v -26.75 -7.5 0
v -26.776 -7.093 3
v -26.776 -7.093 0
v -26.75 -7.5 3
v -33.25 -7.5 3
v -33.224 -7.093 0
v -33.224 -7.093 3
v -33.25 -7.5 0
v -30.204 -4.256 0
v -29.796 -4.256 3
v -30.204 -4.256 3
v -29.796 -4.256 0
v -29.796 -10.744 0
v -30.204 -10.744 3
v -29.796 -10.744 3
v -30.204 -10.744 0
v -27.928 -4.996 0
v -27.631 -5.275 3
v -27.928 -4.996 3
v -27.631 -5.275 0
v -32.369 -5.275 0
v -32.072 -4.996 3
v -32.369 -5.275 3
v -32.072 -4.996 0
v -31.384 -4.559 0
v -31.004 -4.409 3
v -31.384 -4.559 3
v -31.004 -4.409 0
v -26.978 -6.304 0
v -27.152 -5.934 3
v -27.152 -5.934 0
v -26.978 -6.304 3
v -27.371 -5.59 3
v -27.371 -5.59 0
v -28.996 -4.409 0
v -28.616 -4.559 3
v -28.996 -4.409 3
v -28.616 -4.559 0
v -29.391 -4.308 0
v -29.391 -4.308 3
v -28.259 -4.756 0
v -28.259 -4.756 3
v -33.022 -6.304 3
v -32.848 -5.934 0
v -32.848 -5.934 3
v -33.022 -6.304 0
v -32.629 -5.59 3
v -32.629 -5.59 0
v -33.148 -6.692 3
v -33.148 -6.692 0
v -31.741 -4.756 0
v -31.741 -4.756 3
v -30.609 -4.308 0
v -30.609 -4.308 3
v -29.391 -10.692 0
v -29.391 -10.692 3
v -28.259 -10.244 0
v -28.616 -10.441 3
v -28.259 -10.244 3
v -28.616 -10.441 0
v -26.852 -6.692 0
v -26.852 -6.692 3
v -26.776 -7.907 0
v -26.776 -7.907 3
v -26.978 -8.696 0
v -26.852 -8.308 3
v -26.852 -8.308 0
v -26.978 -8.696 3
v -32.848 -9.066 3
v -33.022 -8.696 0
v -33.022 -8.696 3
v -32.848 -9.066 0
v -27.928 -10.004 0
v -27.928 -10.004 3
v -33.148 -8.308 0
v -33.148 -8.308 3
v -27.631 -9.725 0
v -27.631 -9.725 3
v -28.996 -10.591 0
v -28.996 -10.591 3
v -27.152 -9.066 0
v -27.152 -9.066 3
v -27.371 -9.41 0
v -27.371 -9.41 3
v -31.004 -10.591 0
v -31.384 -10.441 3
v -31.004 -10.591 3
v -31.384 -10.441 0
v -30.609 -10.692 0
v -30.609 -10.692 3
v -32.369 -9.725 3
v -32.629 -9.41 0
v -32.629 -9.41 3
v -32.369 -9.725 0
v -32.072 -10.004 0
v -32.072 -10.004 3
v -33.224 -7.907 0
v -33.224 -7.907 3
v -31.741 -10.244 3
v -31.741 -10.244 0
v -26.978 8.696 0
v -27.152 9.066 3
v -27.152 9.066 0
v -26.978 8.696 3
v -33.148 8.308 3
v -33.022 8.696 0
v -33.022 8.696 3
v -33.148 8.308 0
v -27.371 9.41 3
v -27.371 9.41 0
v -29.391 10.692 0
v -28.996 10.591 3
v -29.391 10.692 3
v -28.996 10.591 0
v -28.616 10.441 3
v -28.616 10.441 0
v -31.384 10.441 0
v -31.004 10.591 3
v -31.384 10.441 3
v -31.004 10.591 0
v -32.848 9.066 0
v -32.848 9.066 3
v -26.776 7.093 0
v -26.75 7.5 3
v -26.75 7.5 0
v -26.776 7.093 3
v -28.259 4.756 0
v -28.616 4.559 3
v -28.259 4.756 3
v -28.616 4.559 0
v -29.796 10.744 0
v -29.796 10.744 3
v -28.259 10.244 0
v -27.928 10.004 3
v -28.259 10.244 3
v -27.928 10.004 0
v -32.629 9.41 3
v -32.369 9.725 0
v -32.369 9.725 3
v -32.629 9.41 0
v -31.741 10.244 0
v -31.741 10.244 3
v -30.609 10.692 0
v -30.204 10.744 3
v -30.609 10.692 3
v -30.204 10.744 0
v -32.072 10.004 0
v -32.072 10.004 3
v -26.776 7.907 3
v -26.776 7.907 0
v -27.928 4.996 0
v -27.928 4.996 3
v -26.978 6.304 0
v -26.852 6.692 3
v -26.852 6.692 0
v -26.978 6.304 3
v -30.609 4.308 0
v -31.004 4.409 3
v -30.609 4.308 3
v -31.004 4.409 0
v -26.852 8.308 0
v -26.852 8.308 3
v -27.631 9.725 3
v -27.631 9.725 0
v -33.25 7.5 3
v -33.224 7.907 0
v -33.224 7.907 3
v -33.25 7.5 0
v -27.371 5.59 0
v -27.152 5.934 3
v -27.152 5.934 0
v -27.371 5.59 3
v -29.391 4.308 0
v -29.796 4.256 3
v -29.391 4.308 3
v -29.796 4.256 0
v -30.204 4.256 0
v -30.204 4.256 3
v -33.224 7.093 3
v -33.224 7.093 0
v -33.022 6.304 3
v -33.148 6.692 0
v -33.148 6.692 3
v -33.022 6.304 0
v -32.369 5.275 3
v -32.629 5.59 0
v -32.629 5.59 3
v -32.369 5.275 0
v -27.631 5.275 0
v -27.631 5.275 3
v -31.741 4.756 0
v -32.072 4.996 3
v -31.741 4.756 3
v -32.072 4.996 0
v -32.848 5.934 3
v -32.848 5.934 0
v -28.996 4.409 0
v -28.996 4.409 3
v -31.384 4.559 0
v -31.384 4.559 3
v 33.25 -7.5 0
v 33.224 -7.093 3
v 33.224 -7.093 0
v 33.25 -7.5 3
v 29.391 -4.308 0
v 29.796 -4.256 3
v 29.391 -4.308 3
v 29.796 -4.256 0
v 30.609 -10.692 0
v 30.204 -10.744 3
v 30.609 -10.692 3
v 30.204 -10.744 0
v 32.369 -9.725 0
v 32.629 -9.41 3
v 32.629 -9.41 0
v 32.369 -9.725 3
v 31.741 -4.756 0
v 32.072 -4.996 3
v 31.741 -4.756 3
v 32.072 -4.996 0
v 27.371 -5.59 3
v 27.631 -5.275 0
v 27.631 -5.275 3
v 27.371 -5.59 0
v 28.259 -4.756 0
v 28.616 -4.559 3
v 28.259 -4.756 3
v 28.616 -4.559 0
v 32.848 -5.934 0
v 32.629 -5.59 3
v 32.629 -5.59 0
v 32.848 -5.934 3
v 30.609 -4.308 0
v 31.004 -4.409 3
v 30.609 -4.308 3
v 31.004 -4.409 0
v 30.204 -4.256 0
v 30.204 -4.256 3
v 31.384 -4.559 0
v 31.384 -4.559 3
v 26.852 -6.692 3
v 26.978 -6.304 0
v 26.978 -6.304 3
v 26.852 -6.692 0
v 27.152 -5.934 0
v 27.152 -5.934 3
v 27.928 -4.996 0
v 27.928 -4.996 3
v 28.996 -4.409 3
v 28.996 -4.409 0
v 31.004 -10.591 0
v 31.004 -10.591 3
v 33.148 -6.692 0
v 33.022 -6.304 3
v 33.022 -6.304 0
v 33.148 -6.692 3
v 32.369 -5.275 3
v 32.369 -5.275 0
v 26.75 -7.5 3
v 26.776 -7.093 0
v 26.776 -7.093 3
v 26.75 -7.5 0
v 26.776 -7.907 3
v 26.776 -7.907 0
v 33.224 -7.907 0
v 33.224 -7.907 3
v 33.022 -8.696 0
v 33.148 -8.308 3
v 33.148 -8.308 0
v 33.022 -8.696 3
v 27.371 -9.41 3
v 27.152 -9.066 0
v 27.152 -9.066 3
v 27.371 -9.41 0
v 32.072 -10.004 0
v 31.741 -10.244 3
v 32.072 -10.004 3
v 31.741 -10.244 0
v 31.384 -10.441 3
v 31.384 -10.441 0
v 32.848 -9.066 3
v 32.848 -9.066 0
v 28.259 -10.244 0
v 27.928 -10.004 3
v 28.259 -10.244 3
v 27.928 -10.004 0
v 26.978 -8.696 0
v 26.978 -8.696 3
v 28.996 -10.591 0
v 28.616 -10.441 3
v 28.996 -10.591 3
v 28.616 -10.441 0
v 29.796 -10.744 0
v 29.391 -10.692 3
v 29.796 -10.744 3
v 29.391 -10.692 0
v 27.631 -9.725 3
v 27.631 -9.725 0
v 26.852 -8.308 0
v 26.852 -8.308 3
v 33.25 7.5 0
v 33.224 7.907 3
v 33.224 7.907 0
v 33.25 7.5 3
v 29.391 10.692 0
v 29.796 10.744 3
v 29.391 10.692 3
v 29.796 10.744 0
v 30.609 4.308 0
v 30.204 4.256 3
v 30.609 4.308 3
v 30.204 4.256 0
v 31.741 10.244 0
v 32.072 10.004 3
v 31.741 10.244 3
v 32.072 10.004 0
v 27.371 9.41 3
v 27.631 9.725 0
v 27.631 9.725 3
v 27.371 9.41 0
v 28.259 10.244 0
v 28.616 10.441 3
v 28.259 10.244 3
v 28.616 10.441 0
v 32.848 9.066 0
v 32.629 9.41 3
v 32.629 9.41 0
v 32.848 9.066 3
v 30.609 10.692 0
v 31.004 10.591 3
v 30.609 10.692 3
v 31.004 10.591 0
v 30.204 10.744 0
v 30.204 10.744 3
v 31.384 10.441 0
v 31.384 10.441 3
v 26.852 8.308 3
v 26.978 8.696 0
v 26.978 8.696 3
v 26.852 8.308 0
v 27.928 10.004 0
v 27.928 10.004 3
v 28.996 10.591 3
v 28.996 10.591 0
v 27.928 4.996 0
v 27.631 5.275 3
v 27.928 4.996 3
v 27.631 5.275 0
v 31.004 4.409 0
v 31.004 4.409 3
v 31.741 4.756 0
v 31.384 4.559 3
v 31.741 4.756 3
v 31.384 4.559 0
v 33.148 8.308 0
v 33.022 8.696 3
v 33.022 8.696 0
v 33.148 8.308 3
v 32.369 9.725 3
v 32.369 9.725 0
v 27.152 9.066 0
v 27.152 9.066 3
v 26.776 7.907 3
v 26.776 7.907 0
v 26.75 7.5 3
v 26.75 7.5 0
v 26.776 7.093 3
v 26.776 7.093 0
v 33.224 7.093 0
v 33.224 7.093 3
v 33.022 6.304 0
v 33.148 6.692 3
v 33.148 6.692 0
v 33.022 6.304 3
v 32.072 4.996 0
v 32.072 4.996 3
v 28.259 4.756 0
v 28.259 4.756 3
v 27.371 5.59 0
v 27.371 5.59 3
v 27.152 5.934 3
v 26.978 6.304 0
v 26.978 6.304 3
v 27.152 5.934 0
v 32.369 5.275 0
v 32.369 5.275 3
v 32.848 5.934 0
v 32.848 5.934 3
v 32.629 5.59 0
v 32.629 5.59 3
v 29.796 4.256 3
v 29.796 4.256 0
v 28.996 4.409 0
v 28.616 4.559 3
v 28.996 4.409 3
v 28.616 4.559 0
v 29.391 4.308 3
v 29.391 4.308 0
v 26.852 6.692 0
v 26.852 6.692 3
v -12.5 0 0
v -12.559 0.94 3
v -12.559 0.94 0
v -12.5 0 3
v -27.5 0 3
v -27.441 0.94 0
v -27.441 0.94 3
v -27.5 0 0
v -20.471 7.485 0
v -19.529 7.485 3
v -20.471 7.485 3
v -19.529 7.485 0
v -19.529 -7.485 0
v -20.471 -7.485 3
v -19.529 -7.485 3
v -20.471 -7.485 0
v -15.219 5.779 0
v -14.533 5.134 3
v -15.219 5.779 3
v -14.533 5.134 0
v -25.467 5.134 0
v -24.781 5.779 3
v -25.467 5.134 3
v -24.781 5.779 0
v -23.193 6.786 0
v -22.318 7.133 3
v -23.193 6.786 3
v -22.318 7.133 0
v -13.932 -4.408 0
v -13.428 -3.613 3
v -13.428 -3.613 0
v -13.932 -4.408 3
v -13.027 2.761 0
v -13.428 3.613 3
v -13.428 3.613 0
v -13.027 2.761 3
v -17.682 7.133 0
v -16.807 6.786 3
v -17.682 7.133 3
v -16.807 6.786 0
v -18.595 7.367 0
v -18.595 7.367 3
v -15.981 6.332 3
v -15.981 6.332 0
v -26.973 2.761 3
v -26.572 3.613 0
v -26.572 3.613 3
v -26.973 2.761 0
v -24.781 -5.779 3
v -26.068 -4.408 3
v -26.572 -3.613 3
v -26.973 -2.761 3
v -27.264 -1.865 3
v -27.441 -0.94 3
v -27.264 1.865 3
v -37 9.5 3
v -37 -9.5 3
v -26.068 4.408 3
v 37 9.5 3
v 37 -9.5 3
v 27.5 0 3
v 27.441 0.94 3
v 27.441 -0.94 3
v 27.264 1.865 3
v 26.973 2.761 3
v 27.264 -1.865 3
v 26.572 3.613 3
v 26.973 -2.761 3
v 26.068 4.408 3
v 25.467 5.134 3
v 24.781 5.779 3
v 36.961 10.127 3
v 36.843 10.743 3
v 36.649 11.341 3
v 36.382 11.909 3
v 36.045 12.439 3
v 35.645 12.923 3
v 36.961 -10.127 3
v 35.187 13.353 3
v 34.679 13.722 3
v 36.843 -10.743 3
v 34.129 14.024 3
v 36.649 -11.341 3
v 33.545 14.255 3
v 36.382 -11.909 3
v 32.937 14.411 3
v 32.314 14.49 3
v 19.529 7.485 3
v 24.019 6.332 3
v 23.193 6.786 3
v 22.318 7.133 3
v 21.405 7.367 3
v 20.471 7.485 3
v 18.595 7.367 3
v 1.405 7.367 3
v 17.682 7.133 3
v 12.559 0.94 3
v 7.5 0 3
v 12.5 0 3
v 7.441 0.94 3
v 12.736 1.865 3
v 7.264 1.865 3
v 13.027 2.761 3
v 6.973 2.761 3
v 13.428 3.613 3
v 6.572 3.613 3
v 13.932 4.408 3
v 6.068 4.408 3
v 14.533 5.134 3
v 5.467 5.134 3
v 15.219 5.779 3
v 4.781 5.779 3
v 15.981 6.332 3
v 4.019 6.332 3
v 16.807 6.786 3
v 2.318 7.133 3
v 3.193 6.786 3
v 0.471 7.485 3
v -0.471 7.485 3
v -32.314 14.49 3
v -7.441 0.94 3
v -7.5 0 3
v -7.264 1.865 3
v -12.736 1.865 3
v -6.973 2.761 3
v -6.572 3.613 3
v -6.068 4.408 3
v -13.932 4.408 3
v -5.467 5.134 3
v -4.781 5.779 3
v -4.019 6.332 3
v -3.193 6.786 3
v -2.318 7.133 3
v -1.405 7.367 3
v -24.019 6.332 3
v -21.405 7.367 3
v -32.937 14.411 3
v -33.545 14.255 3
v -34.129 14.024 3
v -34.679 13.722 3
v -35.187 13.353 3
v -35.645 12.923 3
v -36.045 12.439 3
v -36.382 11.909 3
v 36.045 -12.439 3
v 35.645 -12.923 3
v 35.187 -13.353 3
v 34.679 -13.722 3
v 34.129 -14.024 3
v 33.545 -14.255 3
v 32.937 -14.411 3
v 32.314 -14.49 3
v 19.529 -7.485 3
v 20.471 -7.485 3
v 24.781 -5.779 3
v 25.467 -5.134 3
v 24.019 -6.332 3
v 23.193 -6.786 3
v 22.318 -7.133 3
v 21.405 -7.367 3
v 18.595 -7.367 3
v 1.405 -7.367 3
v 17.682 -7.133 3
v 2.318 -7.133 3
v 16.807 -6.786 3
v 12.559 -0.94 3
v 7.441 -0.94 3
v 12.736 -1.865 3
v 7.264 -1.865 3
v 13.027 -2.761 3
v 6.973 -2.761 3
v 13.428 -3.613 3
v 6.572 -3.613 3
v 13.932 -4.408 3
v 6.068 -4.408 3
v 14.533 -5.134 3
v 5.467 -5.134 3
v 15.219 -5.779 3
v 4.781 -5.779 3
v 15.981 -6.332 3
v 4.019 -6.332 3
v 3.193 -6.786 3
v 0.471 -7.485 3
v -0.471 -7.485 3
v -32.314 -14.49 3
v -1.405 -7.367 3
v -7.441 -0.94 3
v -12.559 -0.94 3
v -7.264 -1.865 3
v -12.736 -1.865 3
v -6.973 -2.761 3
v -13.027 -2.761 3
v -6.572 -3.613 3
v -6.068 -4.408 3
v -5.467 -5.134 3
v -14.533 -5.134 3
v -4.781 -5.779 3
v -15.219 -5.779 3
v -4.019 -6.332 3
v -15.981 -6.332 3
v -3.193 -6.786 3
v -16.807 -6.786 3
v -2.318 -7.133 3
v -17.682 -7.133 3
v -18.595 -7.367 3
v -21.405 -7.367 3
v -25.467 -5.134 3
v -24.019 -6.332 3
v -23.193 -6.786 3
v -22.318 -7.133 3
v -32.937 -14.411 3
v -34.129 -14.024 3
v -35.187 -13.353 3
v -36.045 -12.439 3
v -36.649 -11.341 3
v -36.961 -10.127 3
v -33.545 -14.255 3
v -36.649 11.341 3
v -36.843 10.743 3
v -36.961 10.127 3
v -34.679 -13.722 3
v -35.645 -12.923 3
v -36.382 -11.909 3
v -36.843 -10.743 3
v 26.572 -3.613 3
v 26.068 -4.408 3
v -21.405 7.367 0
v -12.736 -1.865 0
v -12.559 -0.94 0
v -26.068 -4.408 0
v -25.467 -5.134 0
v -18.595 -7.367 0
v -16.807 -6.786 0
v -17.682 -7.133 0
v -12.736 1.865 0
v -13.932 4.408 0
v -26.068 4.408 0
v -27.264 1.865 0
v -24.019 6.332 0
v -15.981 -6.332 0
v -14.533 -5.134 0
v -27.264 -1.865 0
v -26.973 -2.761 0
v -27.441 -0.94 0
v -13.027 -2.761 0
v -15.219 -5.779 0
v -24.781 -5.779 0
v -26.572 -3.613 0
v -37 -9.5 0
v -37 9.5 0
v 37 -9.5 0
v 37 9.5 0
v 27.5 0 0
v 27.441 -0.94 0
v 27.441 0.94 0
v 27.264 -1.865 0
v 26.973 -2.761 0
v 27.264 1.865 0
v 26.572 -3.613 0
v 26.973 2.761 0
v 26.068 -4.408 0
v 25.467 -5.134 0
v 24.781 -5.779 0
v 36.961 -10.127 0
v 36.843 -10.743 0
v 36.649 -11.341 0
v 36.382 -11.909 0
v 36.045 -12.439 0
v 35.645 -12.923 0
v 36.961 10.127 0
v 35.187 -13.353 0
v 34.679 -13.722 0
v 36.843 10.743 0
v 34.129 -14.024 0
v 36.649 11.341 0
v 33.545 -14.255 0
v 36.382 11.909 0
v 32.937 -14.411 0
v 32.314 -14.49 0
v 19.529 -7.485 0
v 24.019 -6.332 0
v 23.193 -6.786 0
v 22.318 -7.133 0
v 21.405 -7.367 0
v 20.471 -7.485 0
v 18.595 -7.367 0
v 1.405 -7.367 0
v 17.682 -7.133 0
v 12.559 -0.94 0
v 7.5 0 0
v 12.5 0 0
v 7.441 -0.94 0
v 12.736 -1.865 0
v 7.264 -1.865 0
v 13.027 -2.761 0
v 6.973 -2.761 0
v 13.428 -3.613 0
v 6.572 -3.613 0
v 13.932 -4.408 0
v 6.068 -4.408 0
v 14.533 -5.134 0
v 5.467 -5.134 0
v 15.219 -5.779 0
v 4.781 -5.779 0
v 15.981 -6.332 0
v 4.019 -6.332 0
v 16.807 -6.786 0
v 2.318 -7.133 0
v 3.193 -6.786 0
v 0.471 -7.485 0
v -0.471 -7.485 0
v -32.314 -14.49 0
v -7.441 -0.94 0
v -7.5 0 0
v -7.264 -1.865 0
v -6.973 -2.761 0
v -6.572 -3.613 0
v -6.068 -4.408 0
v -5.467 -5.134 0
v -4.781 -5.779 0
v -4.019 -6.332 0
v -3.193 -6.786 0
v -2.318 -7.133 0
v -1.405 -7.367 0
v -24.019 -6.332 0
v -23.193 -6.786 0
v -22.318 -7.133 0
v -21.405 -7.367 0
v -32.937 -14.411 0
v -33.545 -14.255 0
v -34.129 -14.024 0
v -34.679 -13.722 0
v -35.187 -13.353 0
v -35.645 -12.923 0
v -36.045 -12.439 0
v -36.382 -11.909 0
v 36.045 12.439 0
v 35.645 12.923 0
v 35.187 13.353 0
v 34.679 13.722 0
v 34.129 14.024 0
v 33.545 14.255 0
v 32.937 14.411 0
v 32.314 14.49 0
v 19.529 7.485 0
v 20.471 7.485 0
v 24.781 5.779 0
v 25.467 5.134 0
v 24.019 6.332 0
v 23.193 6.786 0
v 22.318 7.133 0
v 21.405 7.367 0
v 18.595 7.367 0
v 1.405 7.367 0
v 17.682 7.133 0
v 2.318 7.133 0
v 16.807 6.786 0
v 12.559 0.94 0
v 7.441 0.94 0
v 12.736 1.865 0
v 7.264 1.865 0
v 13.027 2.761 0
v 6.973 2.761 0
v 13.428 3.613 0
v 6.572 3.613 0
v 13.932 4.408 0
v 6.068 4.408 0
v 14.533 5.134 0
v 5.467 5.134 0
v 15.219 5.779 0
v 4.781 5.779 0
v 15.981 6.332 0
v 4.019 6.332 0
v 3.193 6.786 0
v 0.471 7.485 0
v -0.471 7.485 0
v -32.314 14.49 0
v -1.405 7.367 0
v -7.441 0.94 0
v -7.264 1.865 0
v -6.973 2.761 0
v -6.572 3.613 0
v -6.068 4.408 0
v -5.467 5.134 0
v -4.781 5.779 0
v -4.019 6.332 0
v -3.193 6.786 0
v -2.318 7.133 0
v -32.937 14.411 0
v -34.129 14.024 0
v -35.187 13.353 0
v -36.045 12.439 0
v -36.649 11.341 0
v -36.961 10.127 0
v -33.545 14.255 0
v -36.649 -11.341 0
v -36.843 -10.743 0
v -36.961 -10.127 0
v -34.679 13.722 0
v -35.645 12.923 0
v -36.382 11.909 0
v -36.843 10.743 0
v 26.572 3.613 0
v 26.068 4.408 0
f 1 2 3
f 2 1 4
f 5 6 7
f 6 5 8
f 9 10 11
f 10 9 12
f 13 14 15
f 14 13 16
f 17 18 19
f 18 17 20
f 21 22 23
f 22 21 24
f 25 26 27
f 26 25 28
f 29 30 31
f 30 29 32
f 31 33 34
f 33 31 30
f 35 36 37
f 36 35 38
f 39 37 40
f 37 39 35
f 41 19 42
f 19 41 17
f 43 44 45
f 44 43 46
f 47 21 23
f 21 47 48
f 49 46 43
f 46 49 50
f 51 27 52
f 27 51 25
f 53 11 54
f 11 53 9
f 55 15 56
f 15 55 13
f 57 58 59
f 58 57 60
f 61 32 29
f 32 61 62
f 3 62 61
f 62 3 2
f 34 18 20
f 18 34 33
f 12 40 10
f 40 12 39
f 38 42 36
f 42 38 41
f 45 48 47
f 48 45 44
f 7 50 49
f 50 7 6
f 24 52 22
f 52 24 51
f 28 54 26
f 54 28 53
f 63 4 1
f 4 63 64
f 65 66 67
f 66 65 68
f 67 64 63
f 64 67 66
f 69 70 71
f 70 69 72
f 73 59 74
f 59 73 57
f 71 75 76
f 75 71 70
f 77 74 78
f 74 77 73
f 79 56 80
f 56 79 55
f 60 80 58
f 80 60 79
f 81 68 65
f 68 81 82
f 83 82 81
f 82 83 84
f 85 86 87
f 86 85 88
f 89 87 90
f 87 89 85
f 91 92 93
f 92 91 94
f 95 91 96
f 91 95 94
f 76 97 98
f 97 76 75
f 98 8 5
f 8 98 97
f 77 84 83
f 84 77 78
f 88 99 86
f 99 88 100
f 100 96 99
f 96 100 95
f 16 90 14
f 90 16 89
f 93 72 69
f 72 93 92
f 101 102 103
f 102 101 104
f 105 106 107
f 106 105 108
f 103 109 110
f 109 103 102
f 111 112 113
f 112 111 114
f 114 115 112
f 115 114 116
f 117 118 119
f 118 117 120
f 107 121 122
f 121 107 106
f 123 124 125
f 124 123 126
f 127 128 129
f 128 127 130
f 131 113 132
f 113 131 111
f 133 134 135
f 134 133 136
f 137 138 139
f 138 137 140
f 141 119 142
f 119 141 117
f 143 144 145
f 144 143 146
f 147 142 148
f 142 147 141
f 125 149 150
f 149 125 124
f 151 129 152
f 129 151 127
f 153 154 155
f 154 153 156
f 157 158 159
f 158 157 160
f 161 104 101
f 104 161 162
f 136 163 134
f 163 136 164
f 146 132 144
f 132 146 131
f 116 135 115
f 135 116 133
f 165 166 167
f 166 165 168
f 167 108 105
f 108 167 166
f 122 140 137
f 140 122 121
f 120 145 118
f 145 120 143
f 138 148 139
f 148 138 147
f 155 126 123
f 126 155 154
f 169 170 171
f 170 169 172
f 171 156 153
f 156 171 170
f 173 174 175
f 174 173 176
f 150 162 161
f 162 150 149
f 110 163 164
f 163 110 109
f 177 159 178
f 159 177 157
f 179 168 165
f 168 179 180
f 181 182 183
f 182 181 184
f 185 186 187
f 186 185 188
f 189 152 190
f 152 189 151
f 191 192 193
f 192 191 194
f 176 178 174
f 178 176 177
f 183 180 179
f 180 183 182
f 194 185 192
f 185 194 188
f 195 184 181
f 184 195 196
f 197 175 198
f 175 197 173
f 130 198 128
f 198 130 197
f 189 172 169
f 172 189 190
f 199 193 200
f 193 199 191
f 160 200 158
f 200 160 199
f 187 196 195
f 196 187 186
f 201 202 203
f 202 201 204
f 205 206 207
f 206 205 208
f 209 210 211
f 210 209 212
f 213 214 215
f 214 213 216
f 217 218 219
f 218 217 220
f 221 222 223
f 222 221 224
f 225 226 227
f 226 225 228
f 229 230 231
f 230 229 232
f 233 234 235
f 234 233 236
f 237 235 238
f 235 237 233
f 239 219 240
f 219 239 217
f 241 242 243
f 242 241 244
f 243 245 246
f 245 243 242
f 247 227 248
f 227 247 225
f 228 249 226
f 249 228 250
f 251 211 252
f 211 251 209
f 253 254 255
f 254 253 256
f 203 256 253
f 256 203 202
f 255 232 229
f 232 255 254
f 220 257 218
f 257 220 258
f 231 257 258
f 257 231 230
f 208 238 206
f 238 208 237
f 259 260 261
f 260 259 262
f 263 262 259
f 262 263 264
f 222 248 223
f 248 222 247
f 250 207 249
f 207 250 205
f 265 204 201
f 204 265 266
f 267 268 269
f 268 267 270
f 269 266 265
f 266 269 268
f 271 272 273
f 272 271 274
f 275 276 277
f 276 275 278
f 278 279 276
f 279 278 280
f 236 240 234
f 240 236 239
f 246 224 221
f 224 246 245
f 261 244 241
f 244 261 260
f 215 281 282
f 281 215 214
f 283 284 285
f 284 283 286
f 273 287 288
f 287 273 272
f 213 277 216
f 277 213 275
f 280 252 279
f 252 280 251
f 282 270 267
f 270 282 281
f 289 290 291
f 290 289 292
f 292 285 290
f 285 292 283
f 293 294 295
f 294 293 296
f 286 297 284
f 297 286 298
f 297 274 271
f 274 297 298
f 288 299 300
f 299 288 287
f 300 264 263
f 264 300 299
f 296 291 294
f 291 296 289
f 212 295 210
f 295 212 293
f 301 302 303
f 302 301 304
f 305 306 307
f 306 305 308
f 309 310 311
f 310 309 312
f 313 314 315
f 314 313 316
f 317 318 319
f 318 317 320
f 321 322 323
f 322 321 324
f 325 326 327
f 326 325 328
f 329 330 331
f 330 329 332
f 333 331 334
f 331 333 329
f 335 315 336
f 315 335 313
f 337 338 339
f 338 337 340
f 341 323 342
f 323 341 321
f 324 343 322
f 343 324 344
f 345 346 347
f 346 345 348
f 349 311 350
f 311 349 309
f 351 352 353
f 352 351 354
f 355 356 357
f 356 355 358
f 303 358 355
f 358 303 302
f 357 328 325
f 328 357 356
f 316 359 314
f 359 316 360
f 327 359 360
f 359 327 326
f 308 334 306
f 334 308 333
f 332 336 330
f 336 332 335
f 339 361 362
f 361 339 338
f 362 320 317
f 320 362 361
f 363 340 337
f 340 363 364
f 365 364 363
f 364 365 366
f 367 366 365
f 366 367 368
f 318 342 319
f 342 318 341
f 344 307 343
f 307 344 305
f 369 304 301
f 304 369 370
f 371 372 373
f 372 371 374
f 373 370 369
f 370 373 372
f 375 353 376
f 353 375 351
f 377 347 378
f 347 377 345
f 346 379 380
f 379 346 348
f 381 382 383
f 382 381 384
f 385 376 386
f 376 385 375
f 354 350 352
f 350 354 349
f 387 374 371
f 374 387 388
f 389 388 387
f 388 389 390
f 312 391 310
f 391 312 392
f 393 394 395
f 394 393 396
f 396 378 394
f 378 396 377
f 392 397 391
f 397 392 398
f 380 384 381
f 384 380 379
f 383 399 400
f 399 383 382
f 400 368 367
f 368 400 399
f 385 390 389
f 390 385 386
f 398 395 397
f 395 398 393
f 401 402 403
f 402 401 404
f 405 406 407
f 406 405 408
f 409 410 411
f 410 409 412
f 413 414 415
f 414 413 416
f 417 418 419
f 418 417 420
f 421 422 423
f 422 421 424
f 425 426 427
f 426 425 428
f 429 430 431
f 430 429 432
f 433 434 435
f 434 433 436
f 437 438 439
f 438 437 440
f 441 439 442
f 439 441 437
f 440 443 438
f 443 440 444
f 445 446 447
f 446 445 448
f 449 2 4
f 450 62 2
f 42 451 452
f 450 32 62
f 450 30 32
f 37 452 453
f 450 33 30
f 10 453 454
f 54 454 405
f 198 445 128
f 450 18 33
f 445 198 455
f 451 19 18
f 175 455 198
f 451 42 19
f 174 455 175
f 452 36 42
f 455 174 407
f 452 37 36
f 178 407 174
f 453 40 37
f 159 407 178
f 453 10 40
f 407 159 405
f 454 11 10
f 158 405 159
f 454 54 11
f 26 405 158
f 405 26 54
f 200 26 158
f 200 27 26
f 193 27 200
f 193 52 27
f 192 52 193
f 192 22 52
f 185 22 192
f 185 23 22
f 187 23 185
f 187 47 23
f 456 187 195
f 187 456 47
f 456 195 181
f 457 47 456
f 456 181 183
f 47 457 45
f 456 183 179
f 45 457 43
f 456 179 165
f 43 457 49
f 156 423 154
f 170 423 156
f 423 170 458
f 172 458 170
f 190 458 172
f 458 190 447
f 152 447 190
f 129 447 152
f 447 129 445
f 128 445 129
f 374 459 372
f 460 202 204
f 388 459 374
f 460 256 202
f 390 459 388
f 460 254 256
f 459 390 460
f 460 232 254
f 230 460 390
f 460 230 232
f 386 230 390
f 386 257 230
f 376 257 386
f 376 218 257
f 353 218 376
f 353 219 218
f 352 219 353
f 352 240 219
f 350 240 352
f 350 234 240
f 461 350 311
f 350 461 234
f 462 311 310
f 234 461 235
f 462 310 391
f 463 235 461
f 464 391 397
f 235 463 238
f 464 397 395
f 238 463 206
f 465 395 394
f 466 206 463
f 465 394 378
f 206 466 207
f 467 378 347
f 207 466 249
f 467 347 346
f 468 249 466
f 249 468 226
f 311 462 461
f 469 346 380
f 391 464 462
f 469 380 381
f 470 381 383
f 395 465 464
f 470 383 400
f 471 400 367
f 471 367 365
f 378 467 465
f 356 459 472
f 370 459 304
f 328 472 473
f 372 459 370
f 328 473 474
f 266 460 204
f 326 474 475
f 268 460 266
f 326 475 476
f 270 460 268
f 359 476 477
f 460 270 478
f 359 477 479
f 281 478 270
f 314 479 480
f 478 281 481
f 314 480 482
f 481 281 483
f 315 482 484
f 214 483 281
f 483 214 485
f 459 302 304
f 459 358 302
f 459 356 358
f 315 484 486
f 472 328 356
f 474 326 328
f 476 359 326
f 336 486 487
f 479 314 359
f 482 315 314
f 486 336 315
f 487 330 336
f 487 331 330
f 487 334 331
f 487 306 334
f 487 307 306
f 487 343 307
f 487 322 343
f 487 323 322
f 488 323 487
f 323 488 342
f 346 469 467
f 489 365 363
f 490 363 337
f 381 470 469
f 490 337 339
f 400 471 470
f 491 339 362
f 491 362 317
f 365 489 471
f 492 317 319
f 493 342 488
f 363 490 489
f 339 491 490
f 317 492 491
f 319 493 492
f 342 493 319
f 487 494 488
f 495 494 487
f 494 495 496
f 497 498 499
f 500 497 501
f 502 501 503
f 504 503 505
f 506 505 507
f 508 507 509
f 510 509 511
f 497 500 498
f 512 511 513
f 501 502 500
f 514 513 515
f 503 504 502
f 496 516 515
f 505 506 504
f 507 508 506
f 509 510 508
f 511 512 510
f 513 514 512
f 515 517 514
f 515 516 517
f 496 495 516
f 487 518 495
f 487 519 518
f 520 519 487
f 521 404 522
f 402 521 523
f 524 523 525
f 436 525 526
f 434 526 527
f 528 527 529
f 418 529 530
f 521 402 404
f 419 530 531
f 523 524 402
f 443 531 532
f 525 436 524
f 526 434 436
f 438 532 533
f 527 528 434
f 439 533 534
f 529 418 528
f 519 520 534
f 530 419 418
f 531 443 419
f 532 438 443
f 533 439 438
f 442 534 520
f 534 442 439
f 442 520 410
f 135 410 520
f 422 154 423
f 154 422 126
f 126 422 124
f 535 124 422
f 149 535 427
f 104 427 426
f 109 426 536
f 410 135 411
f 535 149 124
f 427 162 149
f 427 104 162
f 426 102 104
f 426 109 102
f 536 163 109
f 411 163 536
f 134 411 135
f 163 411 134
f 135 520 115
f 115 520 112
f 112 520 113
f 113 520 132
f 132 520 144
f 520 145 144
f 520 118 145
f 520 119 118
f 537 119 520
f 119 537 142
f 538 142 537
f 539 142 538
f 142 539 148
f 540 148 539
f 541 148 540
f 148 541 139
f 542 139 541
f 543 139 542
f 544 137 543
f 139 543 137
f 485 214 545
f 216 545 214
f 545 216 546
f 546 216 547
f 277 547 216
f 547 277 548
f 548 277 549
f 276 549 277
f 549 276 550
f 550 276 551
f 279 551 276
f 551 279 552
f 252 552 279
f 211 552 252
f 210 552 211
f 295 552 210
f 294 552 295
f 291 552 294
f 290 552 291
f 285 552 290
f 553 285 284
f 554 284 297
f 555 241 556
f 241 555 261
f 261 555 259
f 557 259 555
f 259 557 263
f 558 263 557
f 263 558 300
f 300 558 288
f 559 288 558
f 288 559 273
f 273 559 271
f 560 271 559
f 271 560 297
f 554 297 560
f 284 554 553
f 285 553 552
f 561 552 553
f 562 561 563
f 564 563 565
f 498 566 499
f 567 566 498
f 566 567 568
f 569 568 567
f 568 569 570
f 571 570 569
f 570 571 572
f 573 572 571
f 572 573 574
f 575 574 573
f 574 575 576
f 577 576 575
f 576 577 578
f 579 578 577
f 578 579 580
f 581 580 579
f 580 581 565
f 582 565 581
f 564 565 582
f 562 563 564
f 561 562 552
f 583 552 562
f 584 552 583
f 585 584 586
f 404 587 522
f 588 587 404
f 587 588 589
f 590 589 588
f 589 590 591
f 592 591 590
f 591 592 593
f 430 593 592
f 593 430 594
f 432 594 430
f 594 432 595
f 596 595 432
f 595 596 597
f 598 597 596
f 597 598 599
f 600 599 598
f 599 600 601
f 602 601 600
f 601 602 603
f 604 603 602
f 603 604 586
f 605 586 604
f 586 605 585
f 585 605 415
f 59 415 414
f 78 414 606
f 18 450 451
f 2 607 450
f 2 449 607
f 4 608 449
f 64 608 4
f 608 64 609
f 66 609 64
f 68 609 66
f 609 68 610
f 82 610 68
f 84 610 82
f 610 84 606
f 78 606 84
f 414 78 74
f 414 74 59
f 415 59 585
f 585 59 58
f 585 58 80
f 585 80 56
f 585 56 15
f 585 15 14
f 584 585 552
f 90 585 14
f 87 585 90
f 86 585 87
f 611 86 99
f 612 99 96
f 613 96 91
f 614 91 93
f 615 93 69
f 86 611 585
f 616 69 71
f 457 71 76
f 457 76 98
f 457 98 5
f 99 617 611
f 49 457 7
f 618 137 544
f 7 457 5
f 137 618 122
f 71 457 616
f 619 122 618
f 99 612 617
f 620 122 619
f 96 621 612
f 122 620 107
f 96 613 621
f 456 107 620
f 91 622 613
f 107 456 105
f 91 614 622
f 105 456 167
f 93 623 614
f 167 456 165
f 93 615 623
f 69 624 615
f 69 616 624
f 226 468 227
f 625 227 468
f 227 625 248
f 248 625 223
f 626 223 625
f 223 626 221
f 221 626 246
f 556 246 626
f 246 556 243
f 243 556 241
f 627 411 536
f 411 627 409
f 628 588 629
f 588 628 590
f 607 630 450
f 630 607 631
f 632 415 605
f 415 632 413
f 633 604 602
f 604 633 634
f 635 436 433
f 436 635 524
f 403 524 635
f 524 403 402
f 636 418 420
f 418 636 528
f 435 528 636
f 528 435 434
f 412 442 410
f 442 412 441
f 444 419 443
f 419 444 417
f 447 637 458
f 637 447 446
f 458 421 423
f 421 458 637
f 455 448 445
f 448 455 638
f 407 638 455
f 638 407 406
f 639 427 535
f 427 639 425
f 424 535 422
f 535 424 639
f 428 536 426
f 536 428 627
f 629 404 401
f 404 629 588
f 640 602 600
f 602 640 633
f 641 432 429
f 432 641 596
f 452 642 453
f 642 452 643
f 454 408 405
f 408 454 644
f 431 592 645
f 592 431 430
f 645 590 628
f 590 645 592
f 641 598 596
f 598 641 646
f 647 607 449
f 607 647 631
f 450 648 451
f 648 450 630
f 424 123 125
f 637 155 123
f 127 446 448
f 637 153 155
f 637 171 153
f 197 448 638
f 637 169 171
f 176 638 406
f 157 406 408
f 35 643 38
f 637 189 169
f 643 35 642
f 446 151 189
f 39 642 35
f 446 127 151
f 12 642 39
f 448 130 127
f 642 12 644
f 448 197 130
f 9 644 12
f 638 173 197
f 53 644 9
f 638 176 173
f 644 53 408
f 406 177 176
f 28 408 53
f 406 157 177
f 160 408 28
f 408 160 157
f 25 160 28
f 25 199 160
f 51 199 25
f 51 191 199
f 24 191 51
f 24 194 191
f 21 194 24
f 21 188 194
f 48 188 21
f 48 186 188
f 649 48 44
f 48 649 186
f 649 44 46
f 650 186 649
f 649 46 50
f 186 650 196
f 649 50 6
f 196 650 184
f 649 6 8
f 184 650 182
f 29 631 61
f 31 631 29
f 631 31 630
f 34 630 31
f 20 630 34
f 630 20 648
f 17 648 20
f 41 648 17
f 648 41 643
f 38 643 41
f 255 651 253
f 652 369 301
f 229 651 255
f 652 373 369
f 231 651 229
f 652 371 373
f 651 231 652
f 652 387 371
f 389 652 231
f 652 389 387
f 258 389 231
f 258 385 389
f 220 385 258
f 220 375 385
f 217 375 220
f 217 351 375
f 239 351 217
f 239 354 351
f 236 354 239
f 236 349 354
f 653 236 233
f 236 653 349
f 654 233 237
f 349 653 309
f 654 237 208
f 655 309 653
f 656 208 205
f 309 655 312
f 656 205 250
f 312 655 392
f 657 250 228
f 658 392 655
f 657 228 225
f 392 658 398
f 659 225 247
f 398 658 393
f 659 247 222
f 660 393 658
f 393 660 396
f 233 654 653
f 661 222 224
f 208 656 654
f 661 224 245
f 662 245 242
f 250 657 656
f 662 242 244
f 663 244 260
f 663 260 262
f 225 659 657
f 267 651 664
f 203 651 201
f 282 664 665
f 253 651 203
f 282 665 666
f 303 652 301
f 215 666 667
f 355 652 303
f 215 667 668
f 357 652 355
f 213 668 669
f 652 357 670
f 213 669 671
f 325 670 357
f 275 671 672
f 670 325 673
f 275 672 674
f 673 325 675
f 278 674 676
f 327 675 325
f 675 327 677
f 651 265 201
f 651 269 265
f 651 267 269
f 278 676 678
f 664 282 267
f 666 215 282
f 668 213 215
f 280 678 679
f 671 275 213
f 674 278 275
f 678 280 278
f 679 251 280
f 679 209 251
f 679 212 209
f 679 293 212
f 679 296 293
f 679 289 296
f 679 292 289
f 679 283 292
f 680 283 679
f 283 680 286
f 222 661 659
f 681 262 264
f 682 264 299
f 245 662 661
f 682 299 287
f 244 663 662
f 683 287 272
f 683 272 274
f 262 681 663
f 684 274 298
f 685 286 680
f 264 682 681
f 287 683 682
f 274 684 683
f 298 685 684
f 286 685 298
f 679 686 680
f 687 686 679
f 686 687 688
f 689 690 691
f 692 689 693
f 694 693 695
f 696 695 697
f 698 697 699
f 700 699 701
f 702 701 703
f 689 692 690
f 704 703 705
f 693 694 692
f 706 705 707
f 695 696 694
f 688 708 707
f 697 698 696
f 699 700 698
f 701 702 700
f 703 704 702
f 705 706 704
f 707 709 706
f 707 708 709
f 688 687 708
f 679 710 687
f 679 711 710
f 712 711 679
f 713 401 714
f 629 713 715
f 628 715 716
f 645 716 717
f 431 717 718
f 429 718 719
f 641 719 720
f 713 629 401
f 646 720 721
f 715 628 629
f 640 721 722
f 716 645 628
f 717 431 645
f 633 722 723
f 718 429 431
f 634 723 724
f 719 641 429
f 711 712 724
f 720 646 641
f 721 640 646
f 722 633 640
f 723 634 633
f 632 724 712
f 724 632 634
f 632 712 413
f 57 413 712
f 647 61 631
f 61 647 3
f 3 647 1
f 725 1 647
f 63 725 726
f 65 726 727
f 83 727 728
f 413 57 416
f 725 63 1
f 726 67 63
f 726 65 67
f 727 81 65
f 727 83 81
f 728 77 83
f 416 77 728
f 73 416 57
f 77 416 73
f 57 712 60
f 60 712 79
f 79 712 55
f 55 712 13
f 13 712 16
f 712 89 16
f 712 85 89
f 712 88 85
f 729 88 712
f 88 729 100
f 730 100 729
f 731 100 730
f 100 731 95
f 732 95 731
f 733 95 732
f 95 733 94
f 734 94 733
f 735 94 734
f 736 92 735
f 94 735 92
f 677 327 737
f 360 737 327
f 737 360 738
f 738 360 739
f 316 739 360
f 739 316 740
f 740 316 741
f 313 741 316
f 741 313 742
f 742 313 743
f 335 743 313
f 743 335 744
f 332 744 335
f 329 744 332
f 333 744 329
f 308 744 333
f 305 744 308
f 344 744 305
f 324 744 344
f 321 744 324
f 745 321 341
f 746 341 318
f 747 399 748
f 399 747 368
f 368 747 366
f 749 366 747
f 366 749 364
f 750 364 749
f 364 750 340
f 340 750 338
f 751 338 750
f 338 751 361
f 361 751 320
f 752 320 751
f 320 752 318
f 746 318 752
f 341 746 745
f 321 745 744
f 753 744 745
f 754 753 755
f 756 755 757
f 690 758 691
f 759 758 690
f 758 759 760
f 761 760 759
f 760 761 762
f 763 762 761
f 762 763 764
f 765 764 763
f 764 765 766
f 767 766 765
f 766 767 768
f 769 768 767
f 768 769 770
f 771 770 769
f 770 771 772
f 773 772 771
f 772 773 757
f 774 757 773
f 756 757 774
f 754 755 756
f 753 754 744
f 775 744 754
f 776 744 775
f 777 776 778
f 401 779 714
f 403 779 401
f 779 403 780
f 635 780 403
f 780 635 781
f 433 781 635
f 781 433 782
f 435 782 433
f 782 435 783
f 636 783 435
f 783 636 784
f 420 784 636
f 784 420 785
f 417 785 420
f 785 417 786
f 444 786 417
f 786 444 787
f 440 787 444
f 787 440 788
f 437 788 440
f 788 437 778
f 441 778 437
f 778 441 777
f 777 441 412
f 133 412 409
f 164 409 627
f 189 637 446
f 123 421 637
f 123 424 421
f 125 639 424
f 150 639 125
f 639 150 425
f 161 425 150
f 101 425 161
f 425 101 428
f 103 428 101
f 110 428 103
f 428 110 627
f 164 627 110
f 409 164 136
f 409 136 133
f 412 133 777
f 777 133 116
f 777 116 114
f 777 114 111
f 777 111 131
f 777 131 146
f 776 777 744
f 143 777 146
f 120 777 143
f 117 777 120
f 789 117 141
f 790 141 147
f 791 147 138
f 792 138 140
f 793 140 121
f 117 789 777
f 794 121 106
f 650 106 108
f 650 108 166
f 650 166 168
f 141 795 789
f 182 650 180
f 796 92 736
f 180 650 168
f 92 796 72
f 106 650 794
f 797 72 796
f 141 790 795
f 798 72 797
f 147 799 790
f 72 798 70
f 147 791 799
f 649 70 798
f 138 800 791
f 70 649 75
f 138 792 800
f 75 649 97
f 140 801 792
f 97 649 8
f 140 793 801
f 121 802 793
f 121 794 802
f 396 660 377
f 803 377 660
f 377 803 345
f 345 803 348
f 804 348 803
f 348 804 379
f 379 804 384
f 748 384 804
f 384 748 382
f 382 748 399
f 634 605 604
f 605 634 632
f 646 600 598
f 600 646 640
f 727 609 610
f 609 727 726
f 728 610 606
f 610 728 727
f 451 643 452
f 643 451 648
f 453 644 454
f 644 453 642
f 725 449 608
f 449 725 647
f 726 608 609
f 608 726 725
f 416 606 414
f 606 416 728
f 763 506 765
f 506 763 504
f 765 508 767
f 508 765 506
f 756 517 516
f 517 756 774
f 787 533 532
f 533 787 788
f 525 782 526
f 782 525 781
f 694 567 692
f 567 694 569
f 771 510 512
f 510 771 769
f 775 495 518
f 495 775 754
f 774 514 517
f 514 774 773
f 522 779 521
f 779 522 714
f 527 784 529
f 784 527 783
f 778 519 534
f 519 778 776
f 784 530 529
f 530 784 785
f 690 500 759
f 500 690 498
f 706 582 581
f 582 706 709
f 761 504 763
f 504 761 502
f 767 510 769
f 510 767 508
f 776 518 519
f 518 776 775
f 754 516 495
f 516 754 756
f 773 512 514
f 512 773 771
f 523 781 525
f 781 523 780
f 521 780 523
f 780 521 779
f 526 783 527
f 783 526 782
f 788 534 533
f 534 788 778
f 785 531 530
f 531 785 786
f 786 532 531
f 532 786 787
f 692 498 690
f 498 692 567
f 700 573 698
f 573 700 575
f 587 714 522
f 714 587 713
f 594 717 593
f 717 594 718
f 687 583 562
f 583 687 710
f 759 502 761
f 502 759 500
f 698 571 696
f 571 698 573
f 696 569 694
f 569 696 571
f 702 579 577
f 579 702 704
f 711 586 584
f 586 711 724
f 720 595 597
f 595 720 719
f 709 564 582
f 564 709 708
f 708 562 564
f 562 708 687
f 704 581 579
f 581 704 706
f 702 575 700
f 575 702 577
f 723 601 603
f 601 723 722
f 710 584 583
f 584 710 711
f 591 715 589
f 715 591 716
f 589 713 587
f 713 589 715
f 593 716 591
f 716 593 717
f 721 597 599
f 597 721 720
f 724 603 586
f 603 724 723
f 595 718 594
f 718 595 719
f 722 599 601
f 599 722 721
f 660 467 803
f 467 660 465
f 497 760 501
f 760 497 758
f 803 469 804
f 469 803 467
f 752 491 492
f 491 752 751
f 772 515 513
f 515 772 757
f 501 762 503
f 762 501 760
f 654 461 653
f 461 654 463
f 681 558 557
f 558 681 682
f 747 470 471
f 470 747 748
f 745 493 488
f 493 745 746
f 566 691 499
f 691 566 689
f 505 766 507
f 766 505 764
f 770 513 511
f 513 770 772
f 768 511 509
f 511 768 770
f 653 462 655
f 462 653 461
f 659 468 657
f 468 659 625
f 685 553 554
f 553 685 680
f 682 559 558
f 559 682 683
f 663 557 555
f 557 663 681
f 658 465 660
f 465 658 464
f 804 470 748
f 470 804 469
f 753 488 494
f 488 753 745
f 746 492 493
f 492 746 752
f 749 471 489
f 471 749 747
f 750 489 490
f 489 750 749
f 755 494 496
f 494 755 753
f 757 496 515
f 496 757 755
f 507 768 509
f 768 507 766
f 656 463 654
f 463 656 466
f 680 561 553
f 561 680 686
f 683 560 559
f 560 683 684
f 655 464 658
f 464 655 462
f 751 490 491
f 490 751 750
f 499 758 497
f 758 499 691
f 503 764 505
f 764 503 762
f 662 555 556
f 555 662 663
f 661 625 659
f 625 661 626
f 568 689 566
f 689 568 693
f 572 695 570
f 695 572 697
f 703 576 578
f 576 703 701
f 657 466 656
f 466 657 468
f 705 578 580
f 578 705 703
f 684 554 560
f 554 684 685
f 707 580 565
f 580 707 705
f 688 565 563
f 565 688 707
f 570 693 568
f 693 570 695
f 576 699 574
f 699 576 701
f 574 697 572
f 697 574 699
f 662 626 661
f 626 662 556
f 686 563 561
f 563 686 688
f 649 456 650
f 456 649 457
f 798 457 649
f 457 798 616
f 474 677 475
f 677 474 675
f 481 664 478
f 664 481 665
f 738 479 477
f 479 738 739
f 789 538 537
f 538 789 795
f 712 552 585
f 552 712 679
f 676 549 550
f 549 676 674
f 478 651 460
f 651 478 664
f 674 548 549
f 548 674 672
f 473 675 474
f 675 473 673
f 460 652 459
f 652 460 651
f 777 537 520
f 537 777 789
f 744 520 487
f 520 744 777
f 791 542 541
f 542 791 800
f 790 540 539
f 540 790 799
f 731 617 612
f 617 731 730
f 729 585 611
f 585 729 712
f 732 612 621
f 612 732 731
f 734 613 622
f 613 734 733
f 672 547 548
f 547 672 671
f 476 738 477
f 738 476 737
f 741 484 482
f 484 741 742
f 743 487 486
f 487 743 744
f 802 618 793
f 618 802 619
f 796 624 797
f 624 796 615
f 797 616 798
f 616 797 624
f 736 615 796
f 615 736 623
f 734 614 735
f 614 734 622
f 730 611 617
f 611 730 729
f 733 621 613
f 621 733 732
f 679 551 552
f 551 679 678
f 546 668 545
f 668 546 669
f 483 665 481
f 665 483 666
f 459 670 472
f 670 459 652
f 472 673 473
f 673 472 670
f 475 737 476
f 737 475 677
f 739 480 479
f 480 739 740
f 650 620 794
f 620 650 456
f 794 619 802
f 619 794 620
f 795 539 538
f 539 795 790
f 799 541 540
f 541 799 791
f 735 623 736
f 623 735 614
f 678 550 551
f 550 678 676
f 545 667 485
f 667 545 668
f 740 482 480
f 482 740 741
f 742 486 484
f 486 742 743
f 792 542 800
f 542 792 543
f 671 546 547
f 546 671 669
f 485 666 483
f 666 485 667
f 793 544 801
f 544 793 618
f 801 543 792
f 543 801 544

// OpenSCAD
$fn = 50;


difference() {
	union() {
		hull() {
			translate(v = [-32.0000000000, 9.5000000000, 0]) {
				cylinder(h = 3, r = 5);
			}
			translate(v = [32.0000000000, 9.5000000000, 0]) {
				cylinder(h = 3, r = 5);
			}
			translate(v = [-32.0000000000, -9.5000000000, 0]) {
				cylinder(h = 3, r = 5);
			}
			translate(v = [32.0000000000, -9.5000000000, 0]) {
				cylinder(h = 3, r = 5);
			}
		}
	}
	union() {
		#translate(v = [-30.0000000000, -7.5000000000, -100.0000000000]) {
			cylinder(h = 200, r = 3.2500000000);
		}
		#translate(v = [-30.0000000000, 7.5000000000, -100.0000000000]) {
			cylinder(h = 200, r = 3.2500000000);
		}
		#translate(v = [30.0000000000, -7.5000000000, -100.0000000000]) {
			cylinder(h = 200, r = 3.2500000000);
		}
		#translate(v = [30.0000000000, 7.5000000000, -100.0000000000]) {
			cylinder(h = 200, r = 3.2500000000);
		}
		#translate(v = [-20.0000000000, 0, 0]) {
			cylinder(h = 3, r = 7.5000000000);
		}
		#cylinder(h = 3, r = 7.5000000000);
		#translate(v = [20.0000000000, 0, 0]) {
			cylinder(h = 3, r = 7.5000000000);
		}
	}
}
